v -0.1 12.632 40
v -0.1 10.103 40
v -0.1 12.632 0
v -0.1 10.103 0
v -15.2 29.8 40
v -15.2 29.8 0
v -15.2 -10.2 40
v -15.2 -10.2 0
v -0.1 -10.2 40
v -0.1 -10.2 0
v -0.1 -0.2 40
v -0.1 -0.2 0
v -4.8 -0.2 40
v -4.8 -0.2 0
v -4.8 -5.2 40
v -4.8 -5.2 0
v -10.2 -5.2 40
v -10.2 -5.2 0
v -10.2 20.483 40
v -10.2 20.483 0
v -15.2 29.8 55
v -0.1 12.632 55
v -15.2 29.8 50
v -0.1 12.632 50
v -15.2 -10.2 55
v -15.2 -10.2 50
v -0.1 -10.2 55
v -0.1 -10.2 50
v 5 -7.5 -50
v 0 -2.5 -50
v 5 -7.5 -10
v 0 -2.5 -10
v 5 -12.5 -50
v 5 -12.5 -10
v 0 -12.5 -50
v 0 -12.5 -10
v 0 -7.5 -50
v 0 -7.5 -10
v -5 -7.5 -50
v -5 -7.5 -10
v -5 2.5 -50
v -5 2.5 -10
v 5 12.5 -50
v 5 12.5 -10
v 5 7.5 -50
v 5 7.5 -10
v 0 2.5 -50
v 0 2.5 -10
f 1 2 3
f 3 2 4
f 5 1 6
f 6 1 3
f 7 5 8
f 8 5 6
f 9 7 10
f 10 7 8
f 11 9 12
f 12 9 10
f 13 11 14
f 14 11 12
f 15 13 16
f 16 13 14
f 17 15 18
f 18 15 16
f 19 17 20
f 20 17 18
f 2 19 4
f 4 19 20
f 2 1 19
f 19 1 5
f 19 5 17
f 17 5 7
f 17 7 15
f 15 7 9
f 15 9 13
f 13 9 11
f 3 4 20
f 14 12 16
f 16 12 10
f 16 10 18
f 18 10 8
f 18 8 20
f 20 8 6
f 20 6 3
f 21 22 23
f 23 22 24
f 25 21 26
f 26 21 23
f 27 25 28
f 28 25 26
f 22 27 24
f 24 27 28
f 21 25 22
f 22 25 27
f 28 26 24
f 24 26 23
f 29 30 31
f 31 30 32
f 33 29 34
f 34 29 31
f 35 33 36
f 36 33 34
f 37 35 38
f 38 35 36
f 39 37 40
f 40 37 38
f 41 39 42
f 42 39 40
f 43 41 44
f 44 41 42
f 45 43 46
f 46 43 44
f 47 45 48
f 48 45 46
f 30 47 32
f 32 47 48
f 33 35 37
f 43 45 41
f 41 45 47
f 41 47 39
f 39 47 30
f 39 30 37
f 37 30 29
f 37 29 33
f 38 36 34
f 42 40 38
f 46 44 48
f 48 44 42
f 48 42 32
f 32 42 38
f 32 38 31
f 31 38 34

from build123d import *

# Parameters (mm, degrees)
BOSS_EXTRUDE1_DEPTH = 40
BOSS_EXTRUDE2_DEPTH = 5
BOSS_EXTRUDE3_DEPTH = 40


with BuildPart() as part:
    # Sketch2 → Boss-Extrude1 (new body)
    with BuildSketch(Plane.XY):
        Polygon((-0.1, -0.2), (-0.1, -10.2), (-15.2, -10.2), (-15.2, 29.8), (-0.1, 12.631933622), (-0.1, 10.102772968), (-10.2, 20.482842712), (-10.2, -5.2), (-4.8, -5.2), (-4.8, -0.2), align=None)
    extrude(amount=BOSS_EXTRUDE1_DEPTH)


with BuildPart() as body_2:
    # Sketch3 → Boss-Extrude2 (new body)
    with BuildSketch(Plane.XY.offset(50)):
        Polygon((-0.1, -0.2), (-0.1, 10.102772968), (-0.1, 12.631933622), (-15.2, 29.8), (-15.2, -10.2), (-0.1, -10.2), align=None)
    extrude(amount=BOSS_EXTRUDE2_DEPTH)


with BuildPart() as body_3:
    # Sketch4 → Boss-Extrude3 (new body)
    with BuildSketch(Plane(origin=(0, 0, -10), x_dir=(-1, 0, 0), z_dir=(0, 0, -1))):
        Polygon((5, 2.5), (-5, 12.5), (-5, 7.5), (0, 2.5), (0, -2.5), (-5, -7.5), (-5, -12.5), (0, -12.5), (0, -7.5), (5, -7.5), align=None)
    extrude(amount=BOSS_EXTRUDE3_DEPTH)


solid = Compound([part.part, body_2.part, body_3.part])
